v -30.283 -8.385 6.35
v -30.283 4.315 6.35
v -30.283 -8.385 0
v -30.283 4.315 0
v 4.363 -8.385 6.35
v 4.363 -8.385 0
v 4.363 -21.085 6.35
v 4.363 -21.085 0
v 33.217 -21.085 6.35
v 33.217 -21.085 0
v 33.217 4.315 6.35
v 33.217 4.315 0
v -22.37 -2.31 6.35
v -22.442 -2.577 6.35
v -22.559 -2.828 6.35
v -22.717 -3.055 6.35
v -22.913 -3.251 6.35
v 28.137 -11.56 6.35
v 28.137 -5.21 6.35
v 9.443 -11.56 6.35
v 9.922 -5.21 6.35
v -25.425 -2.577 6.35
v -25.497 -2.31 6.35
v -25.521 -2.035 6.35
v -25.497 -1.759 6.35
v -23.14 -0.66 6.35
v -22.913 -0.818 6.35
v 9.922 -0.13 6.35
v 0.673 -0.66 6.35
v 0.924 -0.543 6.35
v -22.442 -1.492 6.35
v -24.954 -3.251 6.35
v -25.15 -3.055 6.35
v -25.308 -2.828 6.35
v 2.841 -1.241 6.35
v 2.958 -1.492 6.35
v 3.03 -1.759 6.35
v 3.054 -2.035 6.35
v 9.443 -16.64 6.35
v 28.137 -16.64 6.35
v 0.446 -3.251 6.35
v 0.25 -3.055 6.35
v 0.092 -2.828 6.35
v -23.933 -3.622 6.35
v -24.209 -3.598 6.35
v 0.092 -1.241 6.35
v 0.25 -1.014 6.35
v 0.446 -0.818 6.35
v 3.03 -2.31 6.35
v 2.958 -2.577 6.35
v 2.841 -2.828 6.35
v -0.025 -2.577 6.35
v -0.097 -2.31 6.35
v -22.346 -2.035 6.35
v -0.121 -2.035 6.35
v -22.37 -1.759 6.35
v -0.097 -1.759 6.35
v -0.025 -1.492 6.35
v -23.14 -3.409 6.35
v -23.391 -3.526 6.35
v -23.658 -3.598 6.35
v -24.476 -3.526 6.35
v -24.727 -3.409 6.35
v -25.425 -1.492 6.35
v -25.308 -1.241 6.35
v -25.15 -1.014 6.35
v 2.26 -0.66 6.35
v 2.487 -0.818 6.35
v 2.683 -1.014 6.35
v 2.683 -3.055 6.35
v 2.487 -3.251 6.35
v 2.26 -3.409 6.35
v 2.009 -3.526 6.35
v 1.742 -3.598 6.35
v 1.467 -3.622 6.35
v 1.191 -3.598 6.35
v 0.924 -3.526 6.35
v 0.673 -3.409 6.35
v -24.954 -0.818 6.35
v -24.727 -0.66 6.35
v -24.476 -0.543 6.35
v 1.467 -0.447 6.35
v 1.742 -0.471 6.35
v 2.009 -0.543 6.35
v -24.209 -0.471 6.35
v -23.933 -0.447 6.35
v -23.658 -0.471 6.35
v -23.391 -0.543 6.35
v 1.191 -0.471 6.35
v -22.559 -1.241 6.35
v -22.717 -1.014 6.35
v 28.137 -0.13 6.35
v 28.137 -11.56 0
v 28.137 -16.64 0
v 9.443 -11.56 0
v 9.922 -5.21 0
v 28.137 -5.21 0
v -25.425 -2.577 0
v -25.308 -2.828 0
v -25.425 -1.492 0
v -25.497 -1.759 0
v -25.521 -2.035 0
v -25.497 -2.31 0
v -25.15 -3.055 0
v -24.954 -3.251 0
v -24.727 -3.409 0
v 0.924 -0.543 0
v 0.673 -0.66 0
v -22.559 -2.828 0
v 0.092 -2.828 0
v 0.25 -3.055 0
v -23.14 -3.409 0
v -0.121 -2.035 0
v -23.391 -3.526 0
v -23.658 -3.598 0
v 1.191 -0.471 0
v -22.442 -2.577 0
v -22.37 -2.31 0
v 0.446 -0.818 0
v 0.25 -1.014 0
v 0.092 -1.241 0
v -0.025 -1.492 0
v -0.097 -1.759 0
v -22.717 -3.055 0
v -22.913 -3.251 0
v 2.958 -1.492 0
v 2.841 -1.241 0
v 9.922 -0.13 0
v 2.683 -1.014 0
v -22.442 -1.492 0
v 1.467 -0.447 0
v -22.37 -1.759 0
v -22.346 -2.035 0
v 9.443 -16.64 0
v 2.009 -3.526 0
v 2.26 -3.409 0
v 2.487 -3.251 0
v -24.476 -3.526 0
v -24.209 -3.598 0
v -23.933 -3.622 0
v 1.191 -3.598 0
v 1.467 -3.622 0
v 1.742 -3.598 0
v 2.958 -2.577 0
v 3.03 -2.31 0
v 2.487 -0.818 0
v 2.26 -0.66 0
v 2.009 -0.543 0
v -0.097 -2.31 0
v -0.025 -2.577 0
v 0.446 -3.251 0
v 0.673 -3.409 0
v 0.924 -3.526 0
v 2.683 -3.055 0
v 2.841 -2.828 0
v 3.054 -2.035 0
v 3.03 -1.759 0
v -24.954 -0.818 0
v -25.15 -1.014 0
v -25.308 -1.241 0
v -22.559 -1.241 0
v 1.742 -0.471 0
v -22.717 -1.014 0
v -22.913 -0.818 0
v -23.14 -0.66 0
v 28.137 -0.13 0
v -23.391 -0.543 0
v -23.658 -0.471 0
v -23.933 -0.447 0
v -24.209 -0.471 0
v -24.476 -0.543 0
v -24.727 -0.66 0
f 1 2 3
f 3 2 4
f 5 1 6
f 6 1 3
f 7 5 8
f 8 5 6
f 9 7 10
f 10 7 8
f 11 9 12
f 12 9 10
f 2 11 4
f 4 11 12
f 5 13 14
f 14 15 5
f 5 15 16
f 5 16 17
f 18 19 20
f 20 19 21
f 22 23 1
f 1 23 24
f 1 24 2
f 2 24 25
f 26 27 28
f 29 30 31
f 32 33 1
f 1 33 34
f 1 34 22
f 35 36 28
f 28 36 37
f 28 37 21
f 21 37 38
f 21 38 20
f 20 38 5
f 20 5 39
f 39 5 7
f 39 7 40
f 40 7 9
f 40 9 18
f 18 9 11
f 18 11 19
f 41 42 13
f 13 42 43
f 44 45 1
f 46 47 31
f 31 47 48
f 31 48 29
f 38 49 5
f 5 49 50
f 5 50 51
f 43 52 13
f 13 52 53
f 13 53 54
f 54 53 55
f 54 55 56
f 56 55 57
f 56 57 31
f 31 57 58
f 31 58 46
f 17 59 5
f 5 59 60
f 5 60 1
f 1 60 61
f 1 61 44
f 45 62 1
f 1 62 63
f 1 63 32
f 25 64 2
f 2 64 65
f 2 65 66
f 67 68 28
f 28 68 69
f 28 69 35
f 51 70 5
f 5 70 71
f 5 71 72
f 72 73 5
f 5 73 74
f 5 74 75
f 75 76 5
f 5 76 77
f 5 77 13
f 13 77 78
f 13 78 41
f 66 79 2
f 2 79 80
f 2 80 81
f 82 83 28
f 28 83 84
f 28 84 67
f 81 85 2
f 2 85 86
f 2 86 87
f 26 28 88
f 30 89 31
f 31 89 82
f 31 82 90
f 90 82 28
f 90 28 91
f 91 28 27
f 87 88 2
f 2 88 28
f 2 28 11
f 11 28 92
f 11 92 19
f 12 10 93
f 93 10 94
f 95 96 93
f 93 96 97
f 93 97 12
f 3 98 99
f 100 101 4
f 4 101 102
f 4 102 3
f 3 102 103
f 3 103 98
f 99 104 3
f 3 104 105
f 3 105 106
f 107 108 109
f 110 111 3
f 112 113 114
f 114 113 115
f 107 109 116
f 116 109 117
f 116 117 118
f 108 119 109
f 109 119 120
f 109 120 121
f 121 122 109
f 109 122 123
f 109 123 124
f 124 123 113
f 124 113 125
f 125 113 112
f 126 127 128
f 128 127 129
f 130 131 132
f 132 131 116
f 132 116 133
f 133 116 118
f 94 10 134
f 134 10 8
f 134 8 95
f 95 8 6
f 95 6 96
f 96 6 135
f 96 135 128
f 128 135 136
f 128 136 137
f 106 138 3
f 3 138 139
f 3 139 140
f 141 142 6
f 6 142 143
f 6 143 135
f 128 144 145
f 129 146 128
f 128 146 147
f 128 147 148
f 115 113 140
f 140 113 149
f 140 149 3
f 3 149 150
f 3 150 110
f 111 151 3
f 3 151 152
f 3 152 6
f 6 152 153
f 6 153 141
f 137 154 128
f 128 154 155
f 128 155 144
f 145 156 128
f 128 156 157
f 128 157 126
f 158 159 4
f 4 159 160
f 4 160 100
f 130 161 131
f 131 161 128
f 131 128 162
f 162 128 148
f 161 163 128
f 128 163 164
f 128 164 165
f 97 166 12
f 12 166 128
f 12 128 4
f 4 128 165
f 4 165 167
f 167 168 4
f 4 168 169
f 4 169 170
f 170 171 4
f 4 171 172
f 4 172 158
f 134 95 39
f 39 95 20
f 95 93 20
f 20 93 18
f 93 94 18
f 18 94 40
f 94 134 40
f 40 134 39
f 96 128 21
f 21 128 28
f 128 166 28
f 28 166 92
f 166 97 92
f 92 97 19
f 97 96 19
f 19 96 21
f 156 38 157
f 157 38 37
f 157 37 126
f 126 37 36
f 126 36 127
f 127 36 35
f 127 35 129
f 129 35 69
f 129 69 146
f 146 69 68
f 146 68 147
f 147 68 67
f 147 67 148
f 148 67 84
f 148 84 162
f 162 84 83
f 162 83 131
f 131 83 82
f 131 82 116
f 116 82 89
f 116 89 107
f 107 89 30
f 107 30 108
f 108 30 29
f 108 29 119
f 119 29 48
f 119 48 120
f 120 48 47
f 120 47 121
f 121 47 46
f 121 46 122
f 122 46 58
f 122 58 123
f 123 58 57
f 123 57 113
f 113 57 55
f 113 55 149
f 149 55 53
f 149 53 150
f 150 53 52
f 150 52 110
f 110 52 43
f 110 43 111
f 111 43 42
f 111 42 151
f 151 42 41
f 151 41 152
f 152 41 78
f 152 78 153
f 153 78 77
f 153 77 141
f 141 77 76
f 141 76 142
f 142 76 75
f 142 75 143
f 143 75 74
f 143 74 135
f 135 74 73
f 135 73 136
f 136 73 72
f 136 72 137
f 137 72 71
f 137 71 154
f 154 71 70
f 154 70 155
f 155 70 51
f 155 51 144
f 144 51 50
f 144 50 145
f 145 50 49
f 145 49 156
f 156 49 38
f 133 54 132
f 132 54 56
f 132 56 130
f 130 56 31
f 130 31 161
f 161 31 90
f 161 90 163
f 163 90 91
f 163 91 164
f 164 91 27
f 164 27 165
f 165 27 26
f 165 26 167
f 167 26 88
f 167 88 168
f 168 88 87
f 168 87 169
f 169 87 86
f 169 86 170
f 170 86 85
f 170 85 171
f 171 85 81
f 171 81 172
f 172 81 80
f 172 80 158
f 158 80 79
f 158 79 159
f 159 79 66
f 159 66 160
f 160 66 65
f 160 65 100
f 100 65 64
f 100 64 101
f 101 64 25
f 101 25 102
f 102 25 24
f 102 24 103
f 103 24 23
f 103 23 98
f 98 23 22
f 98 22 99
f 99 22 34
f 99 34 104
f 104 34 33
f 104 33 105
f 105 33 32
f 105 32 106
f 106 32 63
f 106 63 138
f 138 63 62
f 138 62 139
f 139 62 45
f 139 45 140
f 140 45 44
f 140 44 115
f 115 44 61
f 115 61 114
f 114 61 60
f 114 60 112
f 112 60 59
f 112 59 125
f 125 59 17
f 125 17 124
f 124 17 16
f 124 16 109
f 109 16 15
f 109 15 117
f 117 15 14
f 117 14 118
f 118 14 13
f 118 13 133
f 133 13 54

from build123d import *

# Parameters (mm, degrees)
BOSS_EXTRUDE1_DEPTH = 6.35
SKETCH2_R           = 1.5875
SKETCH2_W           = 18.214797942
SKETCH2_H           = 5.08
SKETCH2_W_2         = 18.693309481
CUT_EXTRUDE1_DEPTH  = 6.35


with BuildPart() as part:
    # Sketch1 → Boss-Extrude1 (new body)
    with BuildSketch(Plane.XY):
        Polygon((-30.283460543, 4.315489798), (33.216539457, 4.315489798), (33.216539457, -21.084510202), (4.363229976, -21.084510202), (4.363229976, -8.384510202), (-30.283460543, -8.384510202), align=None)
    extrude(amount=BOSS_EXTRUDE1_DEPTH)

    # Sketch2 → Cut-Extrude1 (cut)
    with BuildSketch(Plane.XY.offset(6.35)):
        with Locations((-23.933460543, -2.034510202)):
            Circle(SKETCH2_R)
        with Locations((1.466539457, -2.034510202)):
            Circle(SKETCH2_R)
        with Locations((19.029140486, -2.669510202)):
            Rectangle(SKETCH2_W, SKETCH2_H)
        with Locations((18.789884717, -14.099510202)):
            Rectangle(SKETCH2_W_2, SKETCH2_H)
    extrude(amount=-CUT_EXTRUDE1_DEPTH, mode=Mode.SUBTRACT)


solid = part.part
